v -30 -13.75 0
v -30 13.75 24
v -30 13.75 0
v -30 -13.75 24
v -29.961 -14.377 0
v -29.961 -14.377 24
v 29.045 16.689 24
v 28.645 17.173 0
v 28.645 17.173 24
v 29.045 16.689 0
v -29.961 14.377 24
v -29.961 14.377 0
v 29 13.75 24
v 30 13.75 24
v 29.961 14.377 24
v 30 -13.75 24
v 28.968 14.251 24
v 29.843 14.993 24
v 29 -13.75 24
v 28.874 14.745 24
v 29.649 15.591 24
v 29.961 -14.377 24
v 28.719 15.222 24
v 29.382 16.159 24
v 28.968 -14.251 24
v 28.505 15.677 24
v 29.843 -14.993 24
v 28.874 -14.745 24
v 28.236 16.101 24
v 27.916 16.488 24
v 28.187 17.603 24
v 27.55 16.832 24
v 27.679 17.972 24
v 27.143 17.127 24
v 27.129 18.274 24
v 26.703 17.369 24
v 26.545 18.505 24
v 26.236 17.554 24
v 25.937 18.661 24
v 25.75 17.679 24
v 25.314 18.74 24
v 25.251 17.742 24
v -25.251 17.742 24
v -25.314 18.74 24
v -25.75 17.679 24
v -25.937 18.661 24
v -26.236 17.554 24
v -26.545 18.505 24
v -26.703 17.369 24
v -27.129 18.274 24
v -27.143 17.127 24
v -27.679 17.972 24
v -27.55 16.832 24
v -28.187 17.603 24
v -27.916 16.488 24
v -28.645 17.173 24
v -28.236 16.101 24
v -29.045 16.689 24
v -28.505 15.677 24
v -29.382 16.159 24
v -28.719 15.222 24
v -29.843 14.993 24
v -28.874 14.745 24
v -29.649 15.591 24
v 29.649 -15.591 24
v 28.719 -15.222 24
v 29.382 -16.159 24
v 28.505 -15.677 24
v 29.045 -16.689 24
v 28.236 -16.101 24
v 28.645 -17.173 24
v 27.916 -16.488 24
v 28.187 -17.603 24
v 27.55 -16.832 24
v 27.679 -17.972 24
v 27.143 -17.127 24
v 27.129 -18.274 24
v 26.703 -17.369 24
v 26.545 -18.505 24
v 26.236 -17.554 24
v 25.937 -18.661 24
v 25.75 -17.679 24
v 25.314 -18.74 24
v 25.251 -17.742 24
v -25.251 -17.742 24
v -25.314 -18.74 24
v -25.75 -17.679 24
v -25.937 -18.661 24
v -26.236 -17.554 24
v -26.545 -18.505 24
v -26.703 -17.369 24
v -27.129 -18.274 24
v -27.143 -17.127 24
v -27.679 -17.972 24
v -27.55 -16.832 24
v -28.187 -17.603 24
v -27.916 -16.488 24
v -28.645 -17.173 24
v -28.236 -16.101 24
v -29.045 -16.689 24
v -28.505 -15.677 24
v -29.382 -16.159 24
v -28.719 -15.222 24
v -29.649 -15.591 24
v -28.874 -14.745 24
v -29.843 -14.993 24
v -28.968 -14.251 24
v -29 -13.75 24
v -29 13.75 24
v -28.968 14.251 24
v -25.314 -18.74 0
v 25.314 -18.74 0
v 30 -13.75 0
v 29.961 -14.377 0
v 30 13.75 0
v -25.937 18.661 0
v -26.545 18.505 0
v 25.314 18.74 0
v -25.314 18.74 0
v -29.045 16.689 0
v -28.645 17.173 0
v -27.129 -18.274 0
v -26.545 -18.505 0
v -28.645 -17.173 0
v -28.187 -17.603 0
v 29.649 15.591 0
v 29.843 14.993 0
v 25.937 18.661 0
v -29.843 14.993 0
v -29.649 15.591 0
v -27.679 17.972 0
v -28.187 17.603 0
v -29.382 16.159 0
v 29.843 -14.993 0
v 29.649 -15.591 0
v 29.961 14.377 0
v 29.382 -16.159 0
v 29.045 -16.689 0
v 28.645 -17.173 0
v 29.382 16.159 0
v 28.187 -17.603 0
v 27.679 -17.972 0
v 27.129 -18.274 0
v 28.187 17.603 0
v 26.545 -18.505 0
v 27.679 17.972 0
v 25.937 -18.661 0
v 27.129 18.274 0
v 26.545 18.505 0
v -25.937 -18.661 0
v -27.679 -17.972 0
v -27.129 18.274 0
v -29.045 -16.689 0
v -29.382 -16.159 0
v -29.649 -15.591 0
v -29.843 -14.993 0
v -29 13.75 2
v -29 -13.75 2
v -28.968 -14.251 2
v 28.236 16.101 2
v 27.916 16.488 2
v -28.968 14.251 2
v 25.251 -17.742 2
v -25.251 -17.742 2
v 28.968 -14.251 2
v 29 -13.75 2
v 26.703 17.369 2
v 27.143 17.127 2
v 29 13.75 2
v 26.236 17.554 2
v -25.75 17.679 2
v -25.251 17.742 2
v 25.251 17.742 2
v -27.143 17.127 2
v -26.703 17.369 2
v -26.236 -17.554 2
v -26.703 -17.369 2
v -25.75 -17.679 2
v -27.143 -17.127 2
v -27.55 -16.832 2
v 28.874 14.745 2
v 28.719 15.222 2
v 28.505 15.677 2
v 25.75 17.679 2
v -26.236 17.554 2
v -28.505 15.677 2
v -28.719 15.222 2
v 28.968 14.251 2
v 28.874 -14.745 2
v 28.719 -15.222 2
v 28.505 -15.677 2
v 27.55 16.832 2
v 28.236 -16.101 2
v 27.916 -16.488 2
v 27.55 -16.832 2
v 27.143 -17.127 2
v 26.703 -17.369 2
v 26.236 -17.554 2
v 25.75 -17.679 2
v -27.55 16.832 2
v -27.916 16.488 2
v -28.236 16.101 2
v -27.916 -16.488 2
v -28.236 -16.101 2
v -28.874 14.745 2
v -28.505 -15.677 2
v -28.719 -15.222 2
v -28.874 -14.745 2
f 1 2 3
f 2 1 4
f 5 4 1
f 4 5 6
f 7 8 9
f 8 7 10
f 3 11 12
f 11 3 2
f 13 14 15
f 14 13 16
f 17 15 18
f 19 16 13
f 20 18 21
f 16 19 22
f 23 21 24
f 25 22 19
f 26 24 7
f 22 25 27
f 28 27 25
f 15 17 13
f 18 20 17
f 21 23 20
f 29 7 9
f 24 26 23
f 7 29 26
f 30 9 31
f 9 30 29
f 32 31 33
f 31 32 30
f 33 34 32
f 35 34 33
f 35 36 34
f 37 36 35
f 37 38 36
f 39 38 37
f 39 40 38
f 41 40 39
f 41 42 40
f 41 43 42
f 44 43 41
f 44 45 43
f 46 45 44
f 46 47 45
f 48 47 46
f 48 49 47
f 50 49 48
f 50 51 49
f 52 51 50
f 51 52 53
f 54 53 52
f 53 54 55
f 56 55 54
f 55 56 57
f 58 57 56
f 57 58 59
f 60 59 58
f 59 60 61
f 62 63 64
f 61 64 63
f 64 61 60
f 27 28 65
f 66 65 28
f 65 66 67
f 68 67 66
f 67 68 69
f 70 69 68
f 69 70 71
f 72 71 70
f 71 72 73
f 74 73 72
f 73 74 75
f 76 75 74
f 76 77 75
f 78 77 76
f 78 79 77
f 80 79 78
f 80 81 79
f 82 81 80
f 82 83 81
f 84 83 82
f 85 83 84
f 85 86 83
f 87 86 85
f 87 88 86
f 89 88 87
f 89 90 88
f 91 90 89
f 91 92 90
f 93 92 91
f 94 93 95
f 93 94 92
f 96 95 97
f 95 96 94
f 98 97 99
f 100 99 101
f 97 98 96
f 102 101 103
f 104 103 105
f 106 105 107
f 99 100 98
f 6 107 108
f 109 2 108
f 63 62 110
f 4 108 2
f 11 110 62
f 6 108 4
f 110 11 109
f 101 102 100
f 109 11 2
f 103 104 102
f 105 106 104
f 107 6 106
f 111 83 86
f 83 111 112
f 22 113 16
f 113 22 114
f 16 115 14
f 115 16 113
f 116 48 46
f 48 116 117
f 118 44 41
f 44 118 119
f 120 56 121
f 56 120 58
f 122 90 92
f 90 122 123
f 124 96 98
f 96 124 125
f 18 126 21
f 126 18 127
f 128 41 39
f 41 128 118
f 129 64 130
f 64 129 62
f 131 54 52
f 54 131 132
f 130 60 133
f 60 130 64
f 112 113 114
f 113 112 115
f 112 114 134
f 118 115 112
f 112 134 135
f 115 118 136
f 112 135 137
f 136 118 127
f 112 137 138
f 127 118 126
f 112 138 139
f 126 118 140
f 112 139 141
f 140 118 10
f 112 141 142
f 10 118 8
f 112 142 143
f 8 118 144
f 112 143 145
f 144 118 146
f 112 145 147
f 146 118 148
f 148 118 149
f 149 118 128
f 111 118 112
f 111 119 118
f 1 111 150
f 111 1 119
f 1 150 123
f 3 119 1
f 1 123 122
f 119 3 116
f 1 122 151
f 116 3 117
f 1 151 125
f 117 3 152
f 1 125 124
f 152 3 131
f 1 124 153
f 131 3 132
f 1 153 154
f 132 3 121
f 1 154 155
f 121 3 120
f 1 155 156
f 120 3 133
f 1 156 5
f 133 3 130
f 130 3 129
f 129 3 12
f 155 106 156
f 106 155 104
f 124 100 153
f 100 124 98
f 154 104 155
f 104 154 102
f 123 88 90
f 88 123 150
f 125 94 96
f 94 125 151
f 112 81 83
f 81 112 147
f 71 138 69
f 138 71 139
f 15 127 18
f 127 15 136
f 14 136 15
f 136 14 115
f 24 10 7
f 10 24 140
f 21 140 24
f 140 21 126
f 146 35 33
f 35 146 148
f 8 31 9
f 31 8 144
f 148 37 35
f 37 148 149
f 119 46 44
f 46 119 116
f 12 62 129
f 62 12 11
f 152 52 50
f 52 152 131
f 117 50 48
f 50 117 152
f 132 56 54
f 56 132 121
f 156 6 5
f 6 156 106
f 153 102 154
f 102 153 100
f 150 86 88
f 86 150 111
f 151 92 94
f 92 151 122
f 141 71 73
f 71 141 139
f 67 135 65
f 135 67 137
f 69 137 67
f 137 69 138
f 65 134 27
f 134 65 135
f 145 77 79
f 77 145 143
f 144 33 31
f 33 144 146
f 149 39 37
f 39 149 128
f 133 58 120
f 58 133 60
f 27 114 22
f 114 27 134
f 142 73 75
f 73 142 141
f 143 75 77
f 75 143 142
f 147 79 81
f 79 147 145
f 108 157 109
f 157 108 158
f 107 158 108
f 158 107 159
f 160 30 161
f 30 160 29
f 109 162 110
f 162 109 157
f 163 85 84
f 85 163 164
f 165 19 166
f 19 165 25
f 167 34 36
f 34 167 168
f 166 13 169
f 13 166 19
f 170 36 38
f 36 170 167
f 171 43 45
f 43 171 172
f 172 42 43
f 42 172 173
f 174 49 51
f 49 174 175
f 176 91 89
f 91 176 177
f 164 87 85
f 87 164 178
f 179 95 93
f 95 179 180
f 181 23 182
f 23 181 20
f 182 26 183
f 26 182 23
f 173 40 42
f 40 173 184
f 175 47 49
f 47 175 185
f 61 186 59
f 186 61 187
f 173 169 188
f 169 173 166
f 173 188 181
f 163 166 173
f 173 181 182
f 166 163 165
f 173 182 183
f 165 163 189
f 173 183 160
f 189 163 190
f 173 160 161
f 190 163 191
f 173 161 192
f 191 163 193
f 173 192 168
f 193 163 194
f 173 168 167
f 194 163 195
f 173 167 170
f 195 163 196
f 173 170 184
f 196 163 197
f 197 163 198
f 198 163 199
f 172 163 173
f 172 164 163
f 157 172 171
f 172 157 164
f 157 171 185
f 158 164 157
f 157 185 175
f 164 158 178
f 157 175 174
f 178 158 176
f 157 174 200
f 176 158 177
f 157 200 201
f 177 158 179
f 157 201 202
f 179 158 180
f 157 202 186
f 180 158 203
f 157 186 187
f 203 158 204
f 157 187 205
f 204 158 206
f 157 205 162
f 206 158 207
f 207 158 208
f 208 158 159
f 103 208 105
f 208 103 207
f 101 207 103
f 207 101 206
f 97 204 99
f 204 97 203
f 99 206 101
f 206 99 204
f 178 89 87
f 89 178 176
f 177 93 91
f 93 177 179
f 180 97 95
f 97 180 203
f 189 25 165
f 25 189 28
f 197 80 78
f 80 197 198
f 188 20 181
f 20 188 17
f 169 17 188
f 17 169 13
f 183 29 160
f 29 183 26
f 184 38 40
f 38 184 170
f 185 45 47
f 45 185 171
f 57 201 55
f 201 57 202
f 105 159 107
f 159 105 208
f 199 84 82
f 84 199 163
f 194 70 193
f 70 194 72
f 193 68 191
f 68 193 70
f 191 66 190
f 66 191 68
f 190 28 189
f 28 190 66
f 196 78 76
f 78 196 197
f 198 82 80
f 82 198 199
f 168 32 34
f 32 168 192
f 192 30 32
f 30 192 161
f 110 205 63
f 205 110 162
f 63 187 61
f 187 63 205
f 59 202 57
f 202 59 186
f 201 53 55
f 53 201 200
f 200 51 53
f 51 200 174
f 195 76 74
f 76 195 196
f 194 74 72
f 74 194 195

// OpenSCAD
$fn = 50;


difference() {
	union() {
		hull() {
			translate(v = [-25.0000000000, 13.7500000000, 0]) {
				cylinder(h = 24, r = 5);
			}
			translate(v = [25.0000000000, 13.7500000000, 0]) {
				cylinder(h = 24, r = 5);
			}
			translate(v = [-25.0000000000, -13.7500000000, 0]) {
				cylinder(h = 24, r = 5);
			}
			translate(v = [25.0000000000, -13.7500000000, 0]) {
				cylinder(h = 24, r = 5);
			}
		}
	}
	union() {
		translate(v = [0, 0, 2]) {
			hull() {
				translate(v = [-25.0000000000, 13.7500000000, 0]) {
					cylinder(h = 22, r = 4);
				}
				translate(v = [25.0000000000, 13.7500000000, 0]) {
					cylinder(h = 22, r = 4);
				}
				translate(v = [-25.0000000000, -13.7500000000, 0]) {
					cylinder(h = 22, r = 4);
				}
				translate(v = [25.0000000000, -13.7500000000, 0]) {
					cylinder(h = 22, r = 4);
				}
			}
		}
	}
}
